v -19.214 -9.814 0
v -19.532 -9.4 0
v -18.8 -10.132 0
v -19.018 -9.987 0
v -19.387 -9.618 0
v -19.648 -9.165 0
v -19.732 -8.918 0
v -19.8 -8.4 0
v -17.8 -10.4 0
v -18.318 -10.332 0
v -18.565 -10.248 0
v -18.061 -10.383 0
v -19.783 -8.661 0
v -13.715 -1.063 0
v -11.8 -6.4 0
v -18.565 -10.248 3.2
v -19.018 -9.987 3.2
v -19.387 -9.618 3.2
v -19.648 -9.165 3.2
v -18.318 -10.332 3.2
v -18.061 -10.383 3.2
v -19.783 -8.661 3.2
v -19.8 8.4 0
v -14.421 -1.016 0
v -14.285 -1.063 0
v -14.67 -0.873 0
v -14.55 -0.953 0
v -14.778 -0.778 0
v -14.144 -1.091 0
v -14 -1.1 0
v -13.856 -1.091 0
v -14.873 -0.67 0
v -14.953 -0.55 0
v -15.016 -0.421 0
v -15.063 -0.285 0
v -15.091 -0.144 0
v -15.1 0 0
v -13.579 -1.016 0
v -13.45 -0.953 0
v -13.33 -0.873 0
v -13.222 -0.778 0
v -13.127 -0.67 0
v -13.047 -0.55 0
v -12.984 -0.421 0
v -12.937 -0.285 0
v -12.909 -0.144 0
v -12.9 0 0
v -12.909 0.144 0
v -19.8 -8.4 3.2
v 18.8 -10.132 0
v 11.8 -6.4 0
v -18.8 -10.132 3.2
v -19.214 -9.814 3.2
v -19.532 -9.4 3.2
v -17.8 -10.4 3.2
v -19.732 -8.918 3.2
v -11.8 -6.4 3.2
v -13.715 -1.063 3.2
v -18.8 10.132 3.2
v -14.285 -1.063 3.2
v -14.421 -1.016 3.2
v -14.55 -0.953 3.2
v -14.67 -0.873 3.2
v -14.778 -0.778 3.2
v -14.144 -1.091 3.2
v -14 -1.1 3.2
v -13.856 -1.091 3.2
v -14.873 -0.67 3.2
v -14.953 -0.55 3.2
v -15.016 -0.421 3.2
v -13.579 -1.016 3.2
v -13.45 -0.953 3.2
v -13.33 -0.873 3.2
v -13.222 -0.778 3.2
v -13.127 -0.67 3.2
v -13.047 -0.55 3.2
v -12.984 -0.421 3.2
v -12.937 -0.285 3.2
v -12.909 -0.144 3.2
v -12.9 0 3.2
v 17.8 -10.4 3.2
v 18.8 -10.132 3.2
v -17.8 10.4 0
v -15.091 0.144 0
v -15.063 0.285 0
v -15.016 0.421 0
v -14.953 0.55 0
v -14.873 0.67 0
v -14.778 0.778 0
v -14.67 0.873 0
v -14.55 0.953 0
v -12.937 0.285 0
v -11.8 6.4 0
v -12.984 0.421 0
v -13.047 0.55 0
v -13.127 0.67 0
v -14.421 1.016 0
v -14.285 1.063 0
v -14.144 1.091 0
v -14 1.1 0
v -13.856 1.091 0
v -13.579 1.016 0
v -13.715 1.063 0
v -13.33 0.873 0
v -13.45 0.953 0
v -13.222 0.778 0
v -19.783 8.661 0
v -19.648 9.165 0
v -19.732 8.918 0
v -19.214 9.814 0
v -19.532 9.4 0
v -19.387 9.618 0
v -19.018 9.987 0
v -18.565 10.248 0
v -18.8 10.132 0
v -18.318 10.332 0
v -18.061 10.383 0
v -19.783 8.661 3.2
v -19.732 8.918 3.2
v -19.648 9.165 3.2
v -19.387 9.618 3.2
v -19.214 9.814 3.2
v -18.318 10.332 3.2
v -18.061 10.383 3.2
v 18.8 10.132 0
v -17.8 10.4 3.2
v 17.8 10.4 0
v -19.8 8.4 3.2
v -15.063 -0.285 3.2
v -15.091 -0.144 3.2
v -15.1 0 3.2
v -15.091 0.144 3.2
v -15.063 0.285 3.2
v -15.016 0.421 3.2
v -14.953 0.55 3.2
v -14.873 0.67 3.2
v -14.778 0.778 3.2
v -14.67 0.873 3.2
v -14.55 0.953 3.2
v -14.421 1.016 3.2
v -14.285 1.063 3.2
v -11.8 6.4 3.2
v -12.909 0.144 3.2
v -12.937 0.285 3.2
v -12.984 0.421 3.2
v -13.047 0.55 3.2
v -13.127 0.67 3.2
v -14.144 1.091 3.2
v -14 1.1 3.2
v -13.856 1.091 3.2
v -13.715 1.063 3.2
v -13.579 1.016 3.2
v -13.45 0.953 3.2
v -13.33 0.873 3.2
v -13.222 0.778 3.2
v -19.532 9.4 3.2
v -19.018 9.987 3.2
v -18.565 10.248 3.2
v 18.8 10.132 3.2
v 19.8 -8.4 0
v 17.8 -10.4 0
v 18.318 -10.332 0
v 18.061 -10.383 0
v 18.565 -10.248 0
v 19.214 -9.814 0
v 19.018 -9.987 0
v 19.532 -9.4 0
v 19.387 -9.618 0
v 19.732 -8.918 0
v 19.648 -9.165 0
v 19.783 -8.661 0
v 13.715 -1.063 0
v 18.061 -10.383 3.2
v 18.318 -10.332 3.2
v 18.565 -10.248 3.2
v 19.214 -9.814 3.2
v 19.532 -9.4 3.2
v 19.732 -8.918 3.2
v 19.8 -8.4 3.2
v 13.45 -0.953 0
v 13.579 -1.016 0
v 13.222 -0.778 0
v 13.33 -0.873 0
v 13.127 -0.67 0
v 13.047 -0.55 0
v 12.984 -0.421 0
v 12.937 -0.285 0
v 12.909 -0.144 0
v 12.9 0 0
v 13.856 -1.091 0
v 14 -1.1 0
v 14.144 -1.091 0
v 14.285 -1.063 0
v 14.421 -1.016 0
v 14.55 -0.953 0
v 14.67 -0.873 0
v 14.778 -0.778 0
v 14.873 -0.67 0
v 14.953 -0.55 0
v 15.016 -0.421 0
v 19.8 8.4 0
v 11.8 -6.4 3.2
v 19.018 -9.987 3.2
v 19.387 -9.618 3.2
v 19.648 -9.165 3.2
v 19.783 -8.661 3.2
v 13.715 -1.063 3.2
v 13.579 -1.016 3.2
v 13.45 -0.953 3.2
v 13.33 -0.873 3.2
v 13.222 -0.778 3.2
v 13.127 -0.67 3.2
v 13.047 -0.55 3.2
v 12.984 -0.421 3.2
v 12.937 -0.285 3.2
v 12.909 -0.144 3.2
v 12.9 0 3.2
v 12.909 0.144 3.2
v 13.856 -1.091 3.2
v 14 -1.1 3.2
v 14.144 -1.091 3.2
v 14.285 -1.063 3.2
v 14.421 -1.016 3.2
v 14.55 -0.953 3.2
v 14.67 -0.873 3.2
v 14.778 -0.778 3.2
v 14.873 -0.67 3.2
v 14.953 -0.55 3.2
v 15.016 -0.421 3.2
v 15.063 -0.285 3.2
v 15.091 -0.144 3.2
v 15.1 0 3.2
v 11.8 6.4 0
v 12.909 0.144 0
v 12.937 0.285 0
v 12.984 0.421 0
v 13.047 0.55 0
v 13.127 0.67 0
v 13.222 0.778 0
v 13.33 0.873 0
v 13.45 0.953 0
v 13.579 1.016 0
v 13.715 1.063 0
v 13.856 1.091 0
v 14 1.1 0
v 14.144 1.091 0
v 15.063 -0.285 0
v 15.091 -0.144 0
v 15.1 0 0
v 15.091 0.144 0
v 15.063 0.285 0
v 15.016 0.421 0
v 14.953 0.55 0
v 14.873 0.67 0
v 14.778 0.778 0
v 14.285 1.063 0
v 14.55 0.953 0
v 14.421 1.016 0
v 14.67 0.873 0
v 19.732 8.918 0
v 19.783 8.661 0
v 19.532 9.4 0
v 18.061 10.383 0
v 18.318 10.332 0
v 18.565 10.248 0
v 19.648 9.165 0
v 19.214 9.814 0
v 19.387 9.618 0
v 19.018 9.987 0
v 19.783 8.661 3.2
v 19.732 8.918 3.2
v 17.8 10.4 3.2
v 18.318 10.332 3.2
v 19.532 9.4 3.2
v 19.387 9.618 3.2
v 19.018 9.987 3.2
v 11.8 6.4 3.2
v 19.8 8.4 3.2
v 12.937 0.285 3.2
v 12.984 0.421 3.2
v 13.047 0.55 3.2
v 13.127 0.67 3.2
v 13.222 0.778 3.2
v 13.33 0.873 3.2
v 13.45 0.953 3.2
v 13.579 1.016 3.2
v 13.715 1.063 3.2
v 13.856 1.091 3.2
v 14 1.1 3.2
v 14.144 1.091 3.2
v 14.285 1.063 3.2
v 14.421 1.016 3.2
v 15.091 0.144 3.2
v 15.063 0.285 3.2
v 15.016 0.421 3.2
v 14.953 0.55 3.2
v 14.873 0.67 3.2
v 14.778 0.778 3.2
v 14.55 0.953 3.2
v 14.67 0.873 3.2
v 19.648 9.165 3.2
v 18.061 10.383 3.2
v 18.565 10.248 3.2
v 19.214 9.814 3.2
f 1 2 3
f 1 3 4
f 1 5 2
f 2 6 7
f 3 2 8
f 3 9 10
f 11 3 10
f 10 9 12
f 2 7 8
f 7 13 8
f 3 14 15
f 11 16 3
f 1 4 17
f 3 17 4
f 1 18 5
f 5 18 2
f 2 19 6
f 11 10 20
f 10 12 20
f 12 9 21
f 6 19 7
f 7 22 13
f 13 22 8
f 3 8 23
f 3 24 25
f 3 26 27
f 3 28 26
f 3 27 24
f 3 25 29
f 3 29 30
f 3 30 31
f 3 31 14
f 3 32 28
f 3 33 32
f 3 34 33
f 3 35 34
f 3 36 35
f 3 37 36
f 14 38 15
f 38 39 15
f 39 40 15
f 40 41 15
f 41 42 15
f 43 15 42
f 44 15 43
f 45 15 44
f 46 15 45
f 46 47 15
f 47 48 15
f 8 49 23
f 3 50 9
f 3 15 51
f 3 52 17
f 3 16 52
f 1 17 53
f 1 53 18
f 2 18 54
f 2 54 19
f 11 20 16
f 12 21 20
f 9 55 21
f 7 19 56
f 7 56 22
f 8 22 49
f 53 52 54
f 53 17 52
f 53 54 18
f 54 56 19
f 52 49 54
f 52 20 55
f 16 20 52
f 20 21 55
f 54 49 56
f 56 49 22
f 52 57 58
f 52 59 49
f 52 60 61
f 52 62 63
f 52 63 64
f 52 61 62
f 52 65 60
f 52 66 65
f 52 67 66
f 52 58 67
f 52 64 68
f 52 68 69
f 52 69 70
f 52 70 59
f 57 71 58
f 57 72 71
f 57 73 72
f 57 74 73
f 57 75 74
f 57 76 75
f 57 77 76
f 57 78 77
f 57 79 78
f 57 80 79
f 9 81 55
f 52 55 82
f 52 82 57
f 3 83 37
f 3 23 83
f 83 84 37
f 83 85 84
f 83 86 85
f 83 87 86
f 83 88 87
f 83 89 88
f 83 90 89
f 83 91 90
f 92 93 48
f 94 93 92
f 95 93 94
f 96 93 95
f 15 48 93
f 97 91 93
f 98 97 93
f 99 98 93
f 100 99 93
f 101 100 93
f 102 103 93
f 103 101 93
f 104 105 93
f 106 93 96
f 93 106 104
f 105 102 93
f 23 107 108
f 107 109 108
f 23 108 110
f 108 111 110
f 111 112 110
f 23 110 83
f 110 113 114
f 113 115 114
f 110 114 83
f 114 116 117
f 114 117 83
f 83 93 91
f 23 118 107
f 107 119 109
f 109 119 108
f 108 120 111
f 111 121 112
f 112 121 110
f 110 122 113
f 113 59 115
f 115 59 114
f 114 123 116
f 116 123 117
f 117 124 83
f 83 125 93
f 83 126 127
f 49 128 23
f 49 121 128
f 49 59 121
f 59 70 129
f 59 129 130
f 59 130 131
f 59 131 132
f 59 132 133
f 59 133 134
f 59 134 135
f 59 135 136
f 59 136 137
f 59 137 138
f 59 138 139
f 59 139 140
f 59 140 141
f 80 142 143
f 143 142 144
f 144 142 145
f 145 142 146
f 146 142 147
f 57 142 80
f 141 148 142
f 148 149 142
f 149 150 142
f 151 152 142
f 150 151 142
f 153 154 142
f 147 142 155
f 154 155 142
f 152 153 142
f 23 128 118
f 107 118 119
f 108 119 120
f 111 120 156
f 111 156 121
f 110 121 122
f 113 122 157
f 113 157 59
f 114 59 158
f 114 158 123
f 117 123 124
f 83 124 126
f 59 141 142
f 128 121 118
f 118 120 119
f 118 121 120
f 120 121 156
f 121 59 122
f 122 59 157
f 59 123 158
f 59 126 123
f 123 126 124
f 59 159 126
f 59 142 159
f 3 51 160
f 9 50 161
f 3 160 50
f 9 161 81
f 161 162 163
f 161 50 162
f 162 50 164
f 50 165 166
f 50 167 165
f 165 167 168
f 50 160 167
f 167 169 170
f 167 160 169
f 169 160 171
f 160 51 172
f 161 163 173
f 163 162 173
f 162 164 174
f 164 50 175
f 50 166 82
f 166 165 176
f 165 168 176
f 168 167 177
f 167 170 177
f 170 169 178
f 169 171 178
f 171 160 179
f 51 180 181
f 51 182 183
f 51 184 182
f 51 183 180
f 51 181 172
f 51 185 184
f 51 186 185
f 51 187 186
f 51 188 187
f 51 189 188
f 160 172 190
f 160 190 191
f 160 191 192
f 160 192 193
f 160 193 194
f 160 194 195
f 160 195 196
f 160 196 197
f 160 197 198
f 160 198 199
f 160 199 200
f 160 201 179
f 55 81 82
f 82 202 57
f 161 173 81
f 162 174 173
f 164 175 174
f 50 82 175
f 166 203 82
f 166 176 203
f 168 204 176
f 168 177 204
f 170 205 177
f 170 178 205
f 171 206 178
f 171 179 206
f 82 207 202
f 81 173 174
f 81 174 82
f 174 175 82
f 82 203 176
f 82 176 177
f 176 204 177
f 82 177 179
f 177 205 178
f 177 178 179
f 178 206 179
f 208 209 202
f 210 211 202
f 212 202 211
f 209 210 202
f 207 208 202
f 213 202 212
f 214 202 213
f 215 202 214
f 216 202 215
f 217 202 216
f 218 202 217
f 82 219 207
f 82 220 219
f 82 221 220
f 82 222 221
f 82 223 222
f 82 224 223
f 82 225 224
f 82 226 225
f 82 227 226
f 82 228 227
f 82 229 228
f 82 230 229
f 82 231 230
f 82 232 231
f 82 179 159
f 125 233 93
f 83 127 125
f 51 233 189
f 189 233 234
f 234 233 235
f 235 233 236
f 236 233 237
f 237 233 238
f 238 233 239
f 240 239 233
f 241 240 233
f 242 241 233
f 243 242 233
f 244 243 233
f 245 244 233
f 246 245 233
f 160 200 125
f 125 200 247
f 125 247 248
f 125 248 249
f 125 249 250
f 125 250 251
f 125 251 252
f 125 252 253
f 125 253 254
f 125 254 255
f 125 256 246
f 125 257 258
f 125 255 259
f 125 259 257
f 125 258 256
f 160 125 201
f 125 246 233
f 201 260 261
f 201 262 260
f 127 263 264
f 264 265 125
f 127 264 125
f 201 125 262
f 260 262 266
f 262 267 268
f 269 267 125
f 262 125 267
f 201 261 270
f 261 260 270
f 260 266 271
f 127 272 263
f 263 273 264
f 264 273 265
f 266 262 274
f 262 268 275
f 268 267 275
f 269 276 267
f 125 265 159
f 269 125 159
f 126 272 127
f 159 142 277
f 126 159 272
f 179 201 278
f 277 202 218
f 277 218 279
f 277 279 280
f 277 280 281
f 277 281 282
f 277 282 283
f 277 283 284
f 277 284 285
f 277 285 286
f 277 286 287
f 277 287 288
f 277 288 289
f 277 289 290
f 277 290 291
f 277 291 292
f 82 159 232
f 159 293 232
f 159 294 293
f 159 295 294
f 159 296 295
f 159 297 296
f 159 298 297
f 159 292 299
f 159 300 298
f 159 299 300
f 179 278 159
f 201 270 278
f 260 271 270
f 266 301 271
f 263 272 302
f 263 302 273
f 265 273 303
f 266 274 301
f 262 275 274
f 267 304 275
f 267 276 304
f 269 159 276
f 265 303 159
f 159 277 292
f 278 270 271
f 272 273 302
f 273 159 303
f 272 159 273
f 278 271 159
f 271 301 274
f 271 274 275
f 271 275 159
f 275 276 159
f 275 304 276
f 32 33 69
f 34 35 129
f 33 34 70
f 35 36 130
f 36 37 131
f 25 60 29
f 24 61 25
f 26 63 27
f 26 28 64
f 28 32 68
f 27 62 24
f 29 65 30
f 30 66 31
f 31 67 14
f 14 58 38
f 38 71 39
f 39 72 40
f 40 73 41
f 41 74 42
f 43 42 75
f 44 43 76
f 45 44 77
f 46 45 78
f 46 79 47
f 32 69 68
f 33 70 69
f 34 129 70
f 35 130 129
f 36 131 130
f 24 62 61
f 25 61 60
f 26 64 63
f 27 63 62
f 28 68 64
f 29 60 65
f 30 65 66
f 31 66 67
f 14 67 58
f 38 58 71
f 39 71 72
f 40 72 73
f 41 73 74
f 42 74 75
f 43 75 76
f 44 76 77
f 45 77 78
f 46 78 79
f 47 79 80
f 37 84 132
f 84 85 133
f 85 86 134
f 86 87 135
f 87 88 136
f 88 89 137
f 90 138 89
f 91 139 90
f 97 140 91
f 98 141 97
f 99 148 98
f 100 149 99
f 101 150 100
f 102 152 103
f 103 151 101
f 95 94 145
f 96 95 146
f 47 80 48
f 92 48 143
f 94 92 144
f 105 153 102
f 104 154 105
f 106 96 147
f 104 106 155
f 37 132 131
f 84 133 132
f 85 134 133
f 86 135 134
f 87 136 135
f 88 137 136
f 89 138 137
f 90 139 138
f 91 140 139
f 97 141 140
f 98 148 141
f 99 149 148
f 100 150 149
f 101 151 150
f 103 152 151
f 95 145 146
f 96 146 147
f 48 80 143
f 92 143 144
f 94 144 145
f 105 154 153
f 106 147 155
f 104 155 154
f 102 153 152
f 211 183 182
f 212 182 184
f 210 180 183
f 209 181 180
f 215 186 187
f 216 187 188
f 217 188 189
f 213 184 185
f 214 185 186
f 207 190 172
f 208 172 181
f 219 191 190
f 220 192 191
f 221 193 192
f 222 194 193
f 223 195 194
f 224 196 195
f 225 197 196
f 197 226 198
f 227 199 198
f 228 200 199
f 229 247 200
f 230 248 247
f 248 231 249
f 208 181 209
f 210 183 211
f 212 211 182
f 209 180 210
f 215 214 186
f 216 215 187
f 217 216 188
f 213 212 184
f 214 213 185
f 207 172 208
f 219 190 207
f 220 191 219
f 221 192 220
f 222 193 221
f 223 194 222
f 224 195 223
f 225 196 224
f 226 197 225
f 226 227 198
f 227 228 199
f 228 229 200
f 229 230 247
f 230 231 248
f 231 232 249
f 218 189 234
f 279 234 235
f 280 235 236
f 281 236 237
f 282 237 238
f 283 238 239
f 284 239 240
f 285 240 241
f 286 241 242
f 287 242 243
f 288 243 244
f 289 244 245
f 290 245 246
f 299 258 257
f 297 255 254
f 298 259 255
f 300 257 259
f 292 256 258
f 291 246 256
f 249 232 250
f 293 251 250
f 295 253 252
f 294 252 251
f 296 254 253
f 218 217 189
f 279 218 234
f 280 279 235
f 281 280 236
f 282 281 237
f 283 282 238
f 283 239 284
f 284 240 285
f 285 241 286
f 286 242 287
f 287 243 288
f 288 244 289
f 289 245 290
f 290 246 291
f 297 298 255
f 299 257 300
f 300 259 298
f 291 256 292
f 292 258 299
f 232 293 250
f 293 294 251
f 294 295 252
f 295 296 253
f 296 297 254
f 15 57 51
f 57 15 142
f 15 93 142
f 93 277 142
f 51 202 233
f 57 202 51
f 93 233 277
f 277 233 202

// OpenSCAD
// Stage 1: small plate to test body aperture and mounting-ear hole alignment.
// Lay this flat on the bed. It only tests the servo body/ears, not rim fit.
include <parameters.scad>

$fn = 48;
epsilon = 0.02;

aperture_x = servo_body_x + 2 * body_clearance_per_side;
aperture_y = servo_body_y + 2 * body_clearance_per_side;
plate_x = aperture_x + 2 * coupon_end_margin;
plate_y = aperture_y + 2 * coupon_side_margin;

assert(servo_model == "SG90" || servo_model == "MG90S", "Choose SG90 or MG90S");
assert(body_clearance_per_side >= 0 && coupon_thickness > 0);
assert(servo_ear_hole_pitch / 2 - servo_ear_screw_d / 2 > aperture_x / 2,
       "Ear holes intersect body aperture; measure ear spacing or reduce screw hole");
assert(plate_x > servo_ear_hole_pitch + servo_ear_screw_d + 2);
assert(coupon_corner_radius > 0 && coupon_corner_radius * 2 < plate_y);

module rounded_plate(x, y, radius, height) {
    hull()
        for (px = [-x / 2 + radius, x / 2 - radius],
             py = [-y / 2 + radius, y / 2 - radius])
            translate([px, py, 0]) cylinder(r = radius, h = height);
}

module servo_fit_test() {
    difference() {
        rounded_plate(plate_x, plate_y, coupon_corner_radius, coupon_thickness);

        // The servo body enters vertically; its ears rest on the top face.
        translate([-aperture_x / 2, -aperture_y / 2, -epsilon])
            cube([aperture_x, aperture_y, coupon_thickness + 2 * epsilon]);

        // M2 clearance holes are provisional until the actual ears are measured.
        for (sx = [-1, 1])
            translate([sx * servo_ear_hole_pitch / 2, 0, -epsilon])
                cylinder(d = servo_ear_screw_d, h = coupon_thickness + 2 * epsilon);
    }
}

servo_fit_test();
